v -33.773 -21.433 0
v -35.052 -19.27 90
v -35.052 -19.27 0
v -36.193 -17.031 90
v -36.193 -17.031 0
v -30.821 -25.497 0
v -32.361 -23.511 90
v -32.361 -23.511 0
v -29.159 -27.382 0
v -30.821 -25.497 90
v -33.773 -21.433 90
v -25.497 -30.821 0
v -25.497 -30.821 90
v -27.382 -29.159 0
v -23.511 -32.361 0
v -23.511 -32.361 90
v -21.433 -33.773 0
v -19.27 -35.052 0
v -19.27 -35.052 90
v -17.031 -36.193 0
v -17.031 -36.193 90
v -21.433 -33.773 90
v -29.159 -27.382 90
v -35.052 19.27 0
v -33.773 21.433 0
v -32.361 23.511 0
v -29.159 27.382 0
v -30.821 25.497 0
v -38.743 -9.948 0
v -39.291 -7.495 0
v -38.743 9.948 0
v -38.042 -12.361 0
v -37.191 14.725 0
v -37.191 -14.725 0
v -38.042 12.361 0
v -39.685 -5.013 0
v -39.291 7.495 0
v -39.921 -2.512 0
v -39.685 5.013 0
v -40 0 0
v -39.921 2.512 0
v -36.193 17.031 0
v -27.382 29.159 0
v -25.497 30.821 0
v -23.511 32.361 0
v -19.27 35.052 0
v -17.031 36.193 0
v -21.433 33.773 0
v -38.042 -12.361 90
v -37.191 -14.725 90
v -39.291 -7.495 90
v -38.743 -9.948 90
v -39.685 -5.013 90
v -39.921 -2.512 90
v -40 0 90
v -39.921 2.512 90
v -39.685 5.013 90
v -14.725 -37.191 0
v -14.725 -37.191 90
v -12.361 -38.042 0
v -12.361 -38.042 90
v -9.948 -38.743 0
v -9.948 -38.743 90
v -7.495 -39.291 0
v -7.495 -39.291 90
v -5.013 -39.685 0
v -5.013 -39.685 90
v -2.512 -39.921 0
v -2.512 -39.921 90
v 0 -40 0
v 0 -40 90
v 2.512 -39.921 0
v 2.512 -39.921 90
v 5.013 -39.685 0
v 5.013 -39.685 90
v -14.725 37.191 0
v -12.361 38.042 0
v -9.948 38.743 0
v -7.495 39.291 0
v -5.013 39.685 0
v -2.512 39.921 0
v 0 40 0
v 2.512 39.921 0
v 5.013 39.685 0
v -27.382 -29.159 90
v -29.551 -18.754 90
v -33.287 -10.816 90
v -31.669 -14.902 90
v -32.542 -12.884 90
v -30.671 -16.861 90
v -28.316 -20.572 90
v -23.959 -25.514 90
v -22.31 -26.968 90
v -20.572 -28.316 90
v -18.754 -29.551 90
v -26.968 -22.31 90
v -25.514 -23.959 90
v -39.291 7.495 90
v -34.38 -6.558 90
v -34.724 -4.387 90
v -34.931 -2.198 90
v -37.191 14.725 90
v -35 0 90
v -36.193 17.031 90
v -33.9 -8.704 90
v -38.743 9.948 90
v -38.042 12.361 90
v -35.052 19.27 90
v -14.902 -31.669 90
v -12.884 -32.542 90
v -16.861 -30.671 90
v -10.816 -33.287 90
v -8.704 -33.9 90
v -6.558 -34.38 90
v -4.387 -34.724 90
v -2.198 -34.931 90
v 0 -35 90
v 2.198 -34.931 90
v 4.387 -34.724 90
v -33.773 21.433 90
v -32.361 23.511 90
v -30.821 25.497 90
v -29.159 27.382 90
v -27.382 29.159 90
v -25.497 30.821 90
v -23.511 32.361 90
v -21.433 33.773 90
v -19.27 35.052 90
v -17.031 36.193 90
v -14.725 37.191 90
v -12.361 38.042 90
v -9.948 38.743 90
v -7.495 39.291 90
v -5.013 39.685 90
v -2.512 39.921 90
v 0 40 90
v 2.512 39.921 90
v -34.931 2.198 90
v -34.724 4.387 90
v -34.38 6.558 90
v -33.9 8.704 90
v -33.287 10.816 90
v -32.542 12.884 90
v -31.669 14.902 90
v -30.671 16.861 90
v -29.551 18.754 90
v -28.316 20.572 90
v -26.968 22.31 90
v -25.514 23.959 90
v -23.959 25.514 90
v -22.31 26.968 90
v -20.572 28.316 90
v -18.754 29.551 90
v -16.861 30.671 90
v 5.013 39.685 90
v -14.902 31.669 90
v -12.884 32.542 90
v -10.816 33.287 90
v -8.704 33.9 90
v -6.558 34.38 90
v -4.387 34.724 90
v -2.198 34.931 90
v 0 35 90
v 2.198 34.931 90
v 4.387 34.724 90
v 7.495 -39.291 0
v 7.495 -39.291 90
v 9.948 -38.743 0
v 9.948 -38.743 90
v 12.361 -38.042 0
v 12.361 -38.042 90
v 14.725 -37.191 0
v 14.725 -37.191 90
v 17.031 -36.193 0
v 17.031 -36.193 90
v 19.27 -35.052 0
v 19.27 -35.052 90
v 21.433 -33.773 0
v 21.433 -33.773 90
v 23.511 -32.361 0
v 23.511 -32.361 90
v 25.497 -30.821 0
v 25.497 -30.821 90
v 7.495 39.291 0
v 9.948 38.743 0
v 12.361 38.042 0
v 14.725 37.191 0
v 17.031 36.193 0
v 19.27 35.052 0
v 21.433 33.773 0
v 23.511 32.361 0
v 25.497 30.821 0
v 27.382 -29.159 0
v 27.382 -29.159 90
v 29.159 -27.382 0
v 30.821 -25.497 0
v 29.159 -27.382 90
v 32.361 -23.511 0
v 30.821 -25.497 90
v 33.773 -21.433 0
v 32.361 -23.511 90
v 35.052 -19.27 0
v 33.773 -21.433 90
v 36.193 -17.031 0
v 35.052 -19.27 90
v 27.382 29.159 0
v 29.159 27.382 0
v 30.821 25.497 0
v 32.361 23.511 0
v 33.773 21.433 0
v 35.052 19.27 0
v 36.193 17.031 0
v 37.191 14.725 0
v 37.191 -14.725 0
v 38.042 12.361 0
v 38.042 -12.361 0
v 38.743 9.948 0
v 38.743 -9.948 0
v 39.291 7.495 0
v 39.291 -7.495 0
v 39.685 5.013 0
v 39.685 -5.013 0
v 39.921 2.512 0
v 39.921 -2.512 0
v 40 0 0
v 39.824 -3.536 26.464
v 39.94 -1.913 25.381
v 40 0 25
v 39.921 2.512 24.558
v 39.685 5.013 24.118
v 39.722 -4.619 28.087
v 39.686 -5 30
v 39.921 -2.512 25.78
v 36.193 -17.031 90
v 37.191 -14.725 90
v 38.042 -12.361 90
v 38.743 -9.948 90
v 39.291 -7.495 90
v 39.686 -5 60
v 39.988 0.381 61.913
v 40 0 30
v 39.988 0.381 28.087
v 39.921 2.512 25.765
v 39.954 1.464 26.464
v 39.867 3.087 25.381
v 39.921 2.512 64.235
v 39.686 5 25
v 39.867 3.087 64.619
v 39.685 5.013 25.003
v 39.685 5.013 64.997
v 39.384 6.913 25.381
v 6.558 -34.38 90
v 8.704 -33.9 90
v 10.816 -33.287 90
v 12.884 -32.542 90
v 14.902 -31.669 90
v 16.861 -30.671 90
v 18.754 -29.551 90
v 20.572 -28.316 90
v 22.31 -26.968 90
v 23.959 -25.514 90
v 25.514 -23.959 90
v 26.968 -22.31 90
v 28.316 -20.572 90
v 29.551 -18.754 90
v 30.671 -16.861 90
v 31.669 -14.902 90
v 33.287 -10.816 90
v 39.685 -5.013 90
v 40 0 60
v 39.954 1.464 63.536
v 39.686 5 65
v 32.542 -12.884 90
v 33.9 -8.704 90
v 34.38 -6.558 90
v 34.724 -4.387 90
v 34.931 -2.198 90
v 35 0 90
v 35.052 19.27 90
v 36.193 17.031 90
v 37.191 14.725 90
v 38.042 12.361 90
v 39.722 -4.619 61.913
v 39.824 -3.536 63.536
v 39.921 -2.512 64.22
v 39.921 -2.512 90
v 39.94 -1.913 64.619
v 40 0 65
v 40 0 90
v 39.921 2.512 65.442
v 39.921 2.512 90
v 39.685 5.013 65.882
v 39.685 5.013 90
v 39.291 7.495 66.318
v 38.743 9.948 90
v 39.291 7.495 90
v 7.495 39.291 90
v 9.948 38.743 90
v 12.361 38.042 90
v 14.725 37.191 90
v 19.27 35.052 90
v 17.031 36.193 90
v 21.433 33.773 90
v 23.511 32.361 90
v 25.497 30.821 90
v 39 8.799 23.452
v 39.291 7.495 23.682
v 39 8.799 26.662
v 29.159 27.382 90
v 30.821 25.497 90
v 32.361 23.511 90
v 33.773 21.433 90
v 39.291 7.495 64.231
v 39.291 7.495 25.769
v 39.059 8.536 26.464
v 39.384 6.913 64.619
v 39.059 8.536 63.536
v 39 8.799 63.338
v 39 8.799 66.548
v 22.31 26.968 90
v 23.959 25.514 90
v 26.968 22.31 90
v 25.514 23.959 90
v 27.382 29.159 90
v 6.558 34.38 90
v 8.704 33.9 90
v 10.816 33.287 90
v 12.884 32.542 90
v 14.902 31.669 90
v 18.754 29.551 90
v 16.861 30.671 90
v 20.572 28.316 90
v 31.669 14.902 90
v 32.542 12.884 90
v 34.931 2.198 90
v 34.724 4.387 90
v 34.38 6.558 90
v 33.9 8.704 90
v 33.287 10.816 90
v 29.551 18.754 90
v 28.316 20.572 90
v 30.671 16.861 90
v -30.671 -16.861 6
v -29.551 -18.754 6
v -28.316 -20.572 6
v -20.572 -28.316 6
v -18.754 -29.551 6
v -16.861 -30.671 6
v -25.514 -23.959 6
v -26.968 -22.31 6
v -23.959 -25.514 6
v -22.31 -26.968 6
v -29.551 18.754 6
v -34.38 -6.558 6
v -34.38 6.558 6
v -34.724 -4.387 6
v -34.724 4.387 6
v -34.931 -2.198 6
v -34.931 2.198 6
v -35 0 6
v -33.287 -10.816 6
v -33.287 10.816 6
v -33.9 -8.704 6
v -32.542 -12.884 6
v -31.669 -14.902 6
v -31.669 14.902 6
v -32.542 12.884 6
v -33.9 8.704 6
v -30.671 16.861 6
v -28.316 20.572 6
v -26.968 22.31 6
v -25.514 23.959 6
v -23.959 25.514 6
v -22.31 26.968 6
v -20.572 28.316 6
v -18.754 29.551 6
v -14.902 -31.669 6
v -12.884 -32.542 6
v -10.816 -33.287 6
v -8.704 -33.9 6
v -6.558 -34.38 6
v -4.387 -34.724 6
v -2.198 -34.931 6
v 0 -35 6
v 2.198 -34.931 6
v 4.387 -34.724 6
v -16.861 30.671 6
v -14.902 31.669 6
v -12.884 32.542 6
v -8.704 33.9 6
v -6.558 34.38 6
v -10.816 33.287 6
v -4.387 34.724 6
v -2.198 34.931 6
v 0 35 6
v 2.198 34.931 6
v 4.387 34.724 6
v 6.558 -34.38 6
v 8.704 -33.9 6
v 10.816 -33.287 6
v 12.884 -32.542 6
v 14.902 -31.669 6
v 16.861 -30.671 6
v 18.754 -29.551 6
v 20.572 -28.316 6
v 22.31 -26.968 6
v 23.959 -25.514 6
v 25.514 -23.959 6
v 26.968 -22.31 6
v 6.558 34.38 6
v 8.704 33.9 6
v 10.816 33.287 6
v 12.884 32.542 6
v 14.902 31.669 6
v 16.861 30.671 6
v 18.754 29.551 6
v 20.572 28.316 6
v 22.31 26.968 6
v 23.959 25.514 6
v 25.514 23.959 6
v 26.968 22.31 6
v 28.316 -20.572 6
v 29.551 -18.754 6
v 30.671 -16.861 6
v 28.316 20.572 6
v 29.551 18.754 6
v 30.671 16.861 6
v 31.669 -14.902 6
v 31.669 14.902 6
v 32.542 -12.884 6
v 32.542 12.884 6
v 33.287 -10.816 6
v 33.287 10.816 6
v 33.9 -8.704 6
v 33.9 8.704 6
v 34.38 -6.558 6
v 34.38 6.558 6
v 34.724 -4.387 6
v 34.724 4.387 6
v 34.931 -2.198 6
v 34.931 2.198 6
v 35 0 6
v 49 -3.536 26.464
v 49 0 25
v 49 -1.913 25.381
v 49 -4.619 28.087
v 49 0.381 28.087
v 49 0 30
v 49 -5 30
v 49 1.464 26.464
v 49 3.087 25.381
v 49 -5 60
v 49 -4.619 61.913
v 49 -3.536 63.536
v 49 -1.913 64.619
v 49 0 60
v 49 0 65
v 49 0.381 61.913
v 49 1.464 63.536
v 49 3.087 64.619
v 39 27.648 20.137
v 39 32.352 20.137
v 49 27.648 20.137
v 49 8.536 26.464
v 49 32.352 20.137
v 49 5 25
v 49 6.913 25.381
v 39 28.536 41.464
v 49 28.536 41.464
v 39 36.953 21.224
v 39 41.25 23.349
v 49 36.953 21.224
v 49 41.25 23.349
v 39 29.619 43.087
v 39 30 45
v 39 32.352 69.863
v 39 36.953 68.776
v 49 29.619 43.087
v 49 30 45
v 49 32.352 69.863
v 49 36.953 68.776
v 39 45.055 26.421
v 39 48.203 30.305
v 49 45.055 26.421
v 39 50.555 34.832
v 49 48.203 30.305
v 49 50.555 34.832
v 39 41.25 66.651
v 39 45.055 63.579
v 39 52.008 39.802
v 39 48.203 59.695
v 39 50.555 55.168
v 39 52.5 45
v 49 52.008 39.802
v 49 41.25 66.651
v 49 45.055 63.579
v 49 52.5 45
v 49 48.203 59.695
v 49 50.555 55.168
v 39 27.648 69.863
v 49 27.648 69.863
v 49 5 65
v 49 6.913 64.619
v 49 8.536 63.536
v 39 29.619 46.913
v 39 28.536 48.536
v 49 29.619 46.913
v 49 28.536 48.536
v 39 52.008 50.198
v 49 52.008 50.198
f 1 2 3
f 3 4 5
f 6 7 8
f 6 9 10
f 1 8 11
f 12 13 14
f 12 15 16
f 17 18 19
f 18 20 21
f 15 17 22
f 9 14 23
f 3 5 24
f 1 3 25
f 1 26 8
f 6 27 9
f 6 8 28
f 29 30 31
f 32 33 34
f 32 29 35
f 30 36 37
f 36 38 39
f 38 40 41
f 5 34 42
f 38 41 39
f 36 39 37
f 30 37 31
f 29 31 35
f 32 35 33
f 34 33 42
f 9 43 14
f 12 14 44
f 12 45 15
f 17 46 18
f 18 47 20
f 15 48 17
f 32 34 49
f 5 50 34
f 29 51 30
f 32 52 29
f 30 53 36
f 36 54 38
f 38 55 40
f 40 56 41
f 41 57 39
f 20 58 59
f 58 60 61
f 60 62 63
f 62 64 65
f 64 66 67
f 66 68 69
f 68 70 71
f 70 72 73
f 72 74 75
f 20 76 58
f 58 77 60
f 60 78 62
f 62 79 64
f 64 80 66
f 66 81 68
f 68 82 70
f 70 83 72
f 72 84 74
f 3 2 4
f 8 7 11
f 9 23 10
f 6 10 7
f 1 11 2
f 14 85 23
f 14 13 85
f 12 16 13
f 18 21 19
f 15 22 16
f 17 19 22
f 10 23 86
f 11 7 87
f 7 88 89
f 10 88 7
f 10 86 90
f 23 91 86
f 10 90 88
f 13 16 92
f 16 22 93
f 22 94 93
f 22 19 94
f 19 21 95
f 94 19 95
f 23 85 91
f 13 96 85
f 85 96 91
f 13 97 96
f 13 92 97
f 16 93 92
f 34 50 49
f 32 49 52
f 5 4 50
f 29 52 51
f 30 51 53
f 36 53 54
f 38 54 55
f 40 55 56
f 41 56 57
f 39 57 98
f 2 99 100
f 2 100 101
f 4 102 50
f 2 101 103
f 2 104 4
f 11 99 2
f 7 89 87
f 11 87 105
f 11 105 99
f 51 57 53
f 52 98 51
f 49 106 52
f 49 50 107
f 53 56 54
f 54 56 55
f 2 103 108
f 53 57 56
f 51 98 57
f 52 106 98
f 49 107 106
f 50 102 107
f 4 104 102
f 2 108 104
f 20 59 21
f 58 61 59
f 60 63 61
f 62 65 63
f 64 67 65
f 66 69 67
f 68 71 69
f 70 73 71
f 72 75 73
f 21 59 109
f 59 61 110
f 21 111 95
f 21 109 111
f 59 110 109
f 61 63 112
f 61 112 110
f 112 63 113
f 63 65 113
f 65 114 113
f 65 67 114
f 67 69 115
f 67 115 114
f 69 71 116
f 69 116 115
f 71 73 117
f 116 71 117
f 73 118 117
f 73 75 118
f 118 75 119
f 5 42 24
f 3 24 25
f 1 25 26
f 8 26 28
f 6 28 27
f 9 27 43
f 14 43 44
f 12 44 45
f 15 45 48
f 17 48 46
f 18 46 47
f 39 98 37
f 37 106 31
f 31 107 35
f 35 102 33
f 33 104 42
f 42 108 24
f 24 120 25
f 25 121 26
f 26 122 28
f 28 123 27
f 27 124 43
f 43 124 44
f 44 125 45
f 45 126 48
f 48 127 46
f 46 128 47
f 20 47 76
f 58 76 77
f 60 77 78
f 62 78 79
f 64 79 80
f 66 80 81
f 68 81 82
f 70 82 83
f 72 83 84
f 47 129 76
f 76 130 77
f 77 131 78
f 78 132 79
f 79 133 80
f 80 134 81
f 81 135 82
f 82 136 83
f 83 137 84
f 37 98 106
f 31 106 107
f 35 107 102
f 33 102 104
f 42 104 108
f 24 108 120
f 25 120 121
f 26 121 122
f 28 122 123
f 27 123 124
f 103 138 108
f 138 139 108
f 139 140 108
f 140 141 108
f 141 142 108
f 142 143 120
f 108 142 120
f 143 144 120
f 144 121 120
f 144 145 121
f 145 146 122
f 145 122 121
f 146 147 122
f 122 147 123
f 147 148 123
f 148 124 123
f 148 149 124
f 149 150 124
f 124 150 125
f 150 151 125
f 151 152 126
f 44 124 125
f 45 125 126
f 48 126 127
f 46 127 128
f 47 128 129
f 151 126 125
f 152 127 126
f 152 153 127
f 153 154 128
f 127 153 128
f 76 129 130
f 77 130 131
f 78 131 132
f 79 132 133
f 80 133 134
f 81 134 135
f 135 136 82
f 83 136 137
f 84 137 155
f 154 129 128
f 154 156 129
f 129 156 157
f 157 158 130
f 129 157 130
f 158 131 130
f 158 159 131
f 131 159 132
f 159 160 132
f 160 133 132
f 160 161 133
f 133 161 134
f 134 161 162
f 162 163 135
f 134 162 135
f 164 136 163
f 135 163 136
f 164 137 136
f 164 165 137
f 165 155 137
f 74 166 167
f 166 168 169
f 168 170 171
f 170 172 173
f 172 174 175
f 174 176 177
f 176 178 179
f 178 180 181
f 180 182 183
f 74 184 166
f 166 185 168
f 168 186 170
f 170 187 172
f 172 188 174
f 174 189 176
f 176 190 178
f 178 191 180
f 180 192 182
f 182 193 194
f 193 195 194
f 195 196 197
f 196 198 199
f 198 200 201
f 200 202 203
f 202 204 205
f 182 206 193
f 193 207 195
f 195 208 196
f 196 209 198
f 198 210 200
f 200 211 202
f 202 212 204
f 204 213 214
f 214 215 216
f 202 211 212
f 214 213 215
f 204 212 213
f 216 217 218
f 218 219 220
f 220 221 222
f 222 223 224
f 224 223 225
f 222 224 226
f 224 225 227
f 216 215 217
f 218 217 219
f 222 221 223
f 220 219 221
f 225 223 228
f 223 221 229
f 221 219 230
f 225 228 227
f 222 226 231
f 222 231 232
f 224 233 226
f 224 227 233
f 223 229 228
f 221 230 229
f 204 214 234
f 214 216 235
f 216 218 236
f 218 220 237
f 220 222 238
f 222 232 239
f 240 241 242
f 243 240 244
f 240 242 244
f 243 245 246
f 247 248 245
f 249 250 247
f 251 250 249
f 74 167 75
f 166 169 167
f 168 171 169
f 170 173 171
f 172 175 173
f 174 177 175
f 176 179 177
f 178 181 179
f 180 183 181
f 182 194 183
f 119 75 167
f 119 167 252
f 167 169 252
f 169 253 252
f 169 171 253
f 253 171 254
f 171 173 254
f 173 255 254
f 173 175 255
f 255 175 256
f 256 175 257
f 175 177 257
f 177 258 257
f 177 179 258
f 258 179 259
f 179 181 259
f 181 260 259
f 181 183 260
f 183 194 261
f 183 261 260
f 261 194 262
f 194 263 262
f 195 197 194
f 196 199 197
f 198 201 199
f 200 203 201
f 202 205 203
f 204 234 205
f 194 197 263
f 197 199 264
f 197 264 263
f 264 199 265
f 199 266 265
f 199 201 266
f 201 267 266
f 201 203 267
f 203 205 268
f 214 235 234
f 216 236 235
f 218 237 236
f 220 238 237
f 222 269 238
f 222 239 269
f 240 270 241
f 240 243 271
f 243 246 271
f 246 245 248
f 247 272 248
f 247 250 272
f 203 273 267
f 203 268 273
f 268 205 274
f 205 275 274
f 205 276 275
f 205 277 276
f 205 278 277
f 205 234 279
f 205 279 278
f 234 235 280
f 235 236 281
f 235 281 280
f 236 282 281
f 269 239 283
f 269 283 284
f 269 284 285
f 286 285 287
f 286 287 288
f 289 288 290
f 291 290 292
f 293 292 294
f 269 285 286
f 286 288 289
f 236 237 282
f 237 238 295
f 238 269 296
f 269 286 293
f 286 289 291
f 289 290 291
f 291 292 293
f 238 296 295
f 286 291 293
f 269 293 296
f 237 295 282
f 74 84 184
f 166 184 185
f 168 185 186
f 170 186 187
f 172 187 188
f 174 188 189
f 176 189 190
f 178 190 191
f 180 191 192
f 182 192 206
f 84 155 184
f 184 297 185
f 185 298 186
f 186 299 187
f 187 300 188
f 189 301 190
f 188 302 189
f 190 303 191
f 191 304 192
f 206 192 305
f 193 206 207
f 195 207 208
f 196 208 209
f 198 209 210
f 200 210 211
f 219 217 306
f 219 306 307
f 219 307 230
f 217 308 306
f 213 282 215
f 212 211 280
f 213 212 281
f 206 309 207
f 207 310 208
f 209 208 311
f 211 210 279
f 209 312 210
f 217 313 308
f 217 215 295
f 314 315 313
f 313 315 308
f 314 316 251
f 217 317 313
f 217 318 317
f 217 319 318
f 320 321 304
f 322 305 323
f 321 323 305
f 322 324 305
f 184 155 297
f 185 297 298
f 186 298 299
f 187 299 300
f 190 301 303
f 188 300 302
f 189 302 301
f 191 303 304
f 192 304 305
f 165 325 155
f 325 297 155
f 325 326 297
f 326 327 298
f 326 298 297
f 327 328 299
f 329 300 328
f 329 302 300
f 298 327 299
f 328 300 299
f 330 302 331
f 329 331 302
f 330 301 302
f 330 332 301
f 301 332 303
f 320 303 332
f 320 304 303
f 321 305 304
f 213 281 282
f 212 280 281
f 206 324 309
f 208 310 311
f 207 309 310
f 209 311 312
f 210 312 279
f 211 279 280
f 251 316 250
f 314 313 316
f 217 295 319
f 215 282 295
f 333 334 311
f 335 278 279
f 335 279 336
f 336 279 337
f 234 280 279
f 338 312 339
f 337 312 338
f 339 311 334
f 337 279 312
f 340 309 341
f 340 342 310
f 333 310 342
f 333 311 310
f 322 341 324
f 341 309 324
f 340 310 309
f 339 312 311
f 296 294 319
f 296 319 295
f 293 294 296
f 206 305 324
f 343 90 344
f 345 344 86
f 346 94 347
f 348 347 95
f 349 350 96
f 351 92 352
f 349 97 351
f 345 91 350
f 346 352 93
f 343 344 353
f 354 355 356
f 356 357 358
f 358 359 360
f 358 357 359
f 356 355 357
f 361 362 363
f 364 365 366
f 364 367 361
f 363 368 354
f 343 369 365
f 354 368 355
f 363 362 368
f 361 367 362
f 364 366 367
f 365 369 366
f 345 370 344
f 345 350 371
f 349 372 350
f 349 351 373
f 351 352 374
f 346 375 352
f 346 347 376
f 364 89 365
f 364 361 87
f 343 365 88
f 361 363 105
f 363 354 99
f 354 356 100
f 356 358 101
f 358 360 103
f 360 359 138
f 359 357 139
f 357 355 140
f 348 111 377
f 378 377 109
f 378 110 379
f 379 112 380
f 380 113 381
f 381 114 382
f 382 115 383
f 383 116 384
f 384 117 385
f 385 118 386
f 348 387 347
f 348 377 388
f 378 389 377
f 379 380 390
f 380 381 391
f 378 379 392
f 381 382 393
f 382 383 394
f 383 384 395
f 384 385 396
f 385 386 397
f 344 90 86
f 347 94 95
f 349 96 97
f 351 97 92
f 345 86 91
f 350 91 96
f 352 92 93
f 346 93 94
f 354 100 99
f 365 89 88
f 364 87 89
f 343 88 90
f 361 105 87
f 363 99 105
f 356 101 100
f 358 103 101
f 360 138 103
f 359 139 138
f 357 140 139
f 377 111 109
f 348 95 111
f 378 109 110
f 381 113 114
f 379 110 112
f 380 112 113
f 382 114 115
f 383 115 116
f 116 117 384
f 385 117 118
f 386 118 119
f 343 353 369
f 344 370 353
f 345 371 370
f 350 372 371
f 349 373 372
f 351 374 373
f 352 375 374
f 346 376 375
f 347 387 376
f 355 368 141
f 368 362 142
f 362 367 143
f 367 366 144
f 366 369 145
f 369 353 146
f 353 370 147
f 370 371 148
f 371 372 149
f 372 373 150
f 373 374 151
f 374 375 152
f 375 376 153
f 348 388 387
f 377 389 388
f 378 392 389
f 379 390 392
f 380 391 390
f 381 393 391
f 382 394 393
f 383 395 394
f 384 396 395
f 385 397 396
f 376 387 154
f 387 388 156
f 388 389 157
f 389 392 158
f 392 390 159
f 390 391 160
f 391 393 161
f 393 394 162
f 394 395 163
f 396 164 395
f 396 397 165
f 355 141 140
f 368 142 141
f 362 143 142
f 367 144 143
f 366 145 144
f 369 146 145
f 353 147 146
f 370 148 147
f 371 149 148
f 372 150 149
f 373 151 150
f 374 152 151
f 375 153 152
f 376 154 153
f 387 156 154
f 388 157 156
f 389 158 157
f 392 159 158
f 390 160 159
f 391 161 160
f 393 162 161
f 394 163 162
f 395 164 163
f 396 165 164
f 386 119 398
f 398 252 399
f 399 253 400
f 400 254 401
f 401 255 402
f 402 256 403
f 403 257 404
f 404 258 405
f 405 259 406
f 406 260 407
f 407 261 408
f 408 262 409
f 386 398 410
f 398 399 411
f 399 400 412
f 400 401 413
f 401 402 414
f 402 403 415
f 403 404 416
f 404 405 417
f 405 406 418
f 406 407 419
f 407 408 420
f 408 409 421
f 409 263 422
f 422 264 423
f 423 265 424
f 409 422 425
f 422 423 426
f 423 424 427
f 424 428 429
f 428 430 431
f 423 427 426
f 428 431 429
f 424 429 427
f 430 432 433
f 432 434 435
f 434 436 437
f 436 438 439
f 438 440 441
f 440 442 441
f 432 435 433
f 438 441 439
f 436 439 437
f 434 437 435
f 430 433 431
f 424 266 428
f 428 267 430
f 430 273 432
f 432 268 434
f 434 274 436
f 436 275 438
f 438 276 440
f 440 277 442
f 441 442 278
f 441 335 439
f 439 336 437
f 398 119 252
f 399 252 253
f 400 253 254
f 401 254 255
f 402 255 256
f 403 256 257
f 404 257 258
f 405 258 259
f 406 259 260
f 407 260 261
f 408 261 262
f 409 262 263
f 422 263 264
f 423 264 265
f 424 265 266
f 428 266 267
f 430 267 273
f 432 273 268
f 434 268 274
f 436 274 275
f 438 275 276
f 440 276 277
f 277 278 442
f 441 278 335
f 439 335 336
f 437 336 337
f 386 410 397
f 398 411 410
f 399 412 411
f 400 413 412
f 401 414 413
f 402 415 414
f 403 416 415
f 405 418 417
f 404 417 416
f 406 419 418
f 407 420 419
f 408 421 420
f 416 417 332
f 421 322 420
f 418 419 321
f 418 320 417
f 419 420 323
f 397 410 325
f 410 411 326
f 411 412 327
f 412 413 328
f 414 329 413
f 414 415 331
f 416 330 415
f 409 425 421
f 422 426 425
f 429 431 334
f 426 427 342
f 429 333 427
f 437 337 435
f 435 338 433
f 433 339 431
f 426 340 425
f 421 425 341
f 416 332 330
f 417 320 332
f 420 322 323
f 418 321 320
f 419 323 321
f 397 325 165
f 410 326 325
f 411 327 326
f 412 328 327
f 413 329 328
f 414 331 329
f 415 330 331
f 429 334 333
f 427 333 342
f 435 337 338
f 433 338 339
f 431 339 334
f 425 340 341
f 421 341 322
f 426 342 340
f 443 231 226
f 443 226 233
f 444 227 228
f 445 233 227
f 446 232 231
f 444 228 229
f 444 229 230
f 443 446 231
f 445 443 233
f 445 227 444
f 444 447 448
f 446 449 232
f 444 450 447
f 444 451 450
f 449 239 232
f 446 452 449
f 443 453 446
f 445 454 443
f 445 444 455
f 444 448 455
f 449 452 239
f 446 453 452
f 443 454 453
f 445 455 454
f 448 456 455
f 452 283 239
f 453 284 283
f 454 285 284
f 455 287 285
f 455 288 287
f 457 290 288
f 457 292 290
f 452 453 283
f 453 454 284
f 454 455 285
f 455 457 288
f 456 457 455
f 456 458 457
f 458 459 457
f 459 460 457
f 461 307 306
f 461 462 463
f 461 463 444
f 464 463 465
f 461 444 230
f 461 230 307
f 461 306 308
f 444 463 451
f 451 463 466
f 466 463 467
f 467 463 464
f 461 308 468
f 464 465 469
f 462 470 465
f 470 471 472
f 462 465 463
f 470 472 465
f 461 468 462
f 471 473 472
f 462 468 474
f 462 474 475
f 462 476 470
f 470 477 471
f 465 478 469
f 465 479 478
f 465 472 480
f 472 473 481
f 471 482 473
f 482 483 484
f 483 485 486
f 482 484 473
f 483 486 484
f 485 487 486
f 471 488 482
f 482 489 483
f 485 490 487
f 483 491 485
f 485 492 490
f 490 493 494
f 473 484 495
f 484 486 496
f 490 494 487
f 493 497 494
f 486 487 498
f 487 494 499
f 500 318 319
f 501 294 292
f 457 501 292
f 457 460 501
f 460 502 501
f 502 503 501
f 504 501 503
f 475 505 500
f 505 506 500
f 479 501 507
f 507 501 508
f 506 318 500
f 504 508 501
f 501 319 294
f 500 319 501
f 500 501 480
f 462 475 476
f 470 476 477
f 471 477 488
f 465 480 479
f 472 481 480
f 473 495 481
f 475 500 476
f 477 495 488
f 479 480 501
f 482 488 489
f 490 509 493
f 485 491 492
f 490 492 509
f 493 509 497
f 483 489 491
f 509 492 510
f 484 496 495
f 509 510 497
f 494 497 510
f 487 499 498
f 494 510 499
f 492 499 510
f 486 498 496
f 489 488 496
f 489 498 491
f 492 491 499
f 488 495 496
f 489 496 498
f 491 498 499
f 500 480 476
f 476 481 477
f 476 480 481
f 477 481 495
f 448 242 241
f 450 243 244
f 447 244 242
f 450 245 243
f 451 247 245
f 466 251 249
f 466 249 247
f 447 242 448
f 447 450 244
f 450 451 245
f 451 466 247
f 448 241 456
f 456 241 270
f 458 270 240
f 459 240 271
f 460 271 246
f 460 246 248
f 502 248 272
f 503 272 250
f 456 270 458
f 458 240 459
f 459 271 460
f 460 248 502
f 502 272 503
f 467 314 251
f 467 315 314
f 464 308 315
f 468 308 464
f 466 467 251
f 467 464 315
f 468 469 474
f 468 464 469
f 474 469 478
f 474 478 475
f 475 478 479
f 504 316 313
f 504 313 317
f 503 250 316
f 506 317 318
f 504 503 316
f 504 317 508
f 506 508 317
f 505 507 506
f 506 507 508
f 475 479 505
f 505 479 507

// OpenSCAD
// マグカップのパラメータ
outer_d = 80;
inner_d = 70;
height = 90;
bottom_thickness = 6;
wall_thickness = 5;

// 取手のパラメータ
handle_inner_h = 30;
handle_inner_w = 25;
handle_thickness = 10;

module mug() {
    union() {
        // マグ本体
        difference() {
            cylinder(d = outer_d, h = height, $fn = 100);
            translate([0, 0, bottom_thickness])
                cylinder(d = inner_d, h = height - bottom_thickness + 0.1, $fn = 100);
        }

        // 取手
        handle_x_offset = outer_d / 2 - 1; // 本体と重なりを持たせる
        handle_total_w = handle_inner_w + handle_thickness * 2;
        handle_total_h = handle_inner_h + handle_thickness * 2;

        translate([handle_x_offset, 0, height / 2]) {
            difference() {
                // 取手の外形
                rotate([90, 0, 90])
                    linear_extrude(height = handle_thickness) {
                        hull() {
                            translate([0, handle_inner_h / 2, 0]) circle(d = handle_thickness);
                            translate([0, -handle_inner_h / 2, 0]) circle(d = handle_thickness);
                            translate([handle_inner_w + handle_thickness / 2, 0, 0]) 
                                scale([1, handle_total_h / handle_total_w]) circle(d = handle_total_w);
                        }
                    }
                // 取手の内側の穴
                rotate([90, 0, 90])
                    translate([handle_thickness / 2, 0, -1])
                        linear_extrude(height = handle_thickness + 2) {
                            hull() {
                                translate([0, handle_inner_h / 2, 0]) circle(d = handle_thickness);
                                translate([0, -handle_inner_h / 2, 0]) circle(d = handle_thickness);
                                translate([handle_inner_w - handle_thickness / 2, 0, 0]) circle(d = handle_thickness);
                            }
                        }
            }
        }
    }
}

mug();
